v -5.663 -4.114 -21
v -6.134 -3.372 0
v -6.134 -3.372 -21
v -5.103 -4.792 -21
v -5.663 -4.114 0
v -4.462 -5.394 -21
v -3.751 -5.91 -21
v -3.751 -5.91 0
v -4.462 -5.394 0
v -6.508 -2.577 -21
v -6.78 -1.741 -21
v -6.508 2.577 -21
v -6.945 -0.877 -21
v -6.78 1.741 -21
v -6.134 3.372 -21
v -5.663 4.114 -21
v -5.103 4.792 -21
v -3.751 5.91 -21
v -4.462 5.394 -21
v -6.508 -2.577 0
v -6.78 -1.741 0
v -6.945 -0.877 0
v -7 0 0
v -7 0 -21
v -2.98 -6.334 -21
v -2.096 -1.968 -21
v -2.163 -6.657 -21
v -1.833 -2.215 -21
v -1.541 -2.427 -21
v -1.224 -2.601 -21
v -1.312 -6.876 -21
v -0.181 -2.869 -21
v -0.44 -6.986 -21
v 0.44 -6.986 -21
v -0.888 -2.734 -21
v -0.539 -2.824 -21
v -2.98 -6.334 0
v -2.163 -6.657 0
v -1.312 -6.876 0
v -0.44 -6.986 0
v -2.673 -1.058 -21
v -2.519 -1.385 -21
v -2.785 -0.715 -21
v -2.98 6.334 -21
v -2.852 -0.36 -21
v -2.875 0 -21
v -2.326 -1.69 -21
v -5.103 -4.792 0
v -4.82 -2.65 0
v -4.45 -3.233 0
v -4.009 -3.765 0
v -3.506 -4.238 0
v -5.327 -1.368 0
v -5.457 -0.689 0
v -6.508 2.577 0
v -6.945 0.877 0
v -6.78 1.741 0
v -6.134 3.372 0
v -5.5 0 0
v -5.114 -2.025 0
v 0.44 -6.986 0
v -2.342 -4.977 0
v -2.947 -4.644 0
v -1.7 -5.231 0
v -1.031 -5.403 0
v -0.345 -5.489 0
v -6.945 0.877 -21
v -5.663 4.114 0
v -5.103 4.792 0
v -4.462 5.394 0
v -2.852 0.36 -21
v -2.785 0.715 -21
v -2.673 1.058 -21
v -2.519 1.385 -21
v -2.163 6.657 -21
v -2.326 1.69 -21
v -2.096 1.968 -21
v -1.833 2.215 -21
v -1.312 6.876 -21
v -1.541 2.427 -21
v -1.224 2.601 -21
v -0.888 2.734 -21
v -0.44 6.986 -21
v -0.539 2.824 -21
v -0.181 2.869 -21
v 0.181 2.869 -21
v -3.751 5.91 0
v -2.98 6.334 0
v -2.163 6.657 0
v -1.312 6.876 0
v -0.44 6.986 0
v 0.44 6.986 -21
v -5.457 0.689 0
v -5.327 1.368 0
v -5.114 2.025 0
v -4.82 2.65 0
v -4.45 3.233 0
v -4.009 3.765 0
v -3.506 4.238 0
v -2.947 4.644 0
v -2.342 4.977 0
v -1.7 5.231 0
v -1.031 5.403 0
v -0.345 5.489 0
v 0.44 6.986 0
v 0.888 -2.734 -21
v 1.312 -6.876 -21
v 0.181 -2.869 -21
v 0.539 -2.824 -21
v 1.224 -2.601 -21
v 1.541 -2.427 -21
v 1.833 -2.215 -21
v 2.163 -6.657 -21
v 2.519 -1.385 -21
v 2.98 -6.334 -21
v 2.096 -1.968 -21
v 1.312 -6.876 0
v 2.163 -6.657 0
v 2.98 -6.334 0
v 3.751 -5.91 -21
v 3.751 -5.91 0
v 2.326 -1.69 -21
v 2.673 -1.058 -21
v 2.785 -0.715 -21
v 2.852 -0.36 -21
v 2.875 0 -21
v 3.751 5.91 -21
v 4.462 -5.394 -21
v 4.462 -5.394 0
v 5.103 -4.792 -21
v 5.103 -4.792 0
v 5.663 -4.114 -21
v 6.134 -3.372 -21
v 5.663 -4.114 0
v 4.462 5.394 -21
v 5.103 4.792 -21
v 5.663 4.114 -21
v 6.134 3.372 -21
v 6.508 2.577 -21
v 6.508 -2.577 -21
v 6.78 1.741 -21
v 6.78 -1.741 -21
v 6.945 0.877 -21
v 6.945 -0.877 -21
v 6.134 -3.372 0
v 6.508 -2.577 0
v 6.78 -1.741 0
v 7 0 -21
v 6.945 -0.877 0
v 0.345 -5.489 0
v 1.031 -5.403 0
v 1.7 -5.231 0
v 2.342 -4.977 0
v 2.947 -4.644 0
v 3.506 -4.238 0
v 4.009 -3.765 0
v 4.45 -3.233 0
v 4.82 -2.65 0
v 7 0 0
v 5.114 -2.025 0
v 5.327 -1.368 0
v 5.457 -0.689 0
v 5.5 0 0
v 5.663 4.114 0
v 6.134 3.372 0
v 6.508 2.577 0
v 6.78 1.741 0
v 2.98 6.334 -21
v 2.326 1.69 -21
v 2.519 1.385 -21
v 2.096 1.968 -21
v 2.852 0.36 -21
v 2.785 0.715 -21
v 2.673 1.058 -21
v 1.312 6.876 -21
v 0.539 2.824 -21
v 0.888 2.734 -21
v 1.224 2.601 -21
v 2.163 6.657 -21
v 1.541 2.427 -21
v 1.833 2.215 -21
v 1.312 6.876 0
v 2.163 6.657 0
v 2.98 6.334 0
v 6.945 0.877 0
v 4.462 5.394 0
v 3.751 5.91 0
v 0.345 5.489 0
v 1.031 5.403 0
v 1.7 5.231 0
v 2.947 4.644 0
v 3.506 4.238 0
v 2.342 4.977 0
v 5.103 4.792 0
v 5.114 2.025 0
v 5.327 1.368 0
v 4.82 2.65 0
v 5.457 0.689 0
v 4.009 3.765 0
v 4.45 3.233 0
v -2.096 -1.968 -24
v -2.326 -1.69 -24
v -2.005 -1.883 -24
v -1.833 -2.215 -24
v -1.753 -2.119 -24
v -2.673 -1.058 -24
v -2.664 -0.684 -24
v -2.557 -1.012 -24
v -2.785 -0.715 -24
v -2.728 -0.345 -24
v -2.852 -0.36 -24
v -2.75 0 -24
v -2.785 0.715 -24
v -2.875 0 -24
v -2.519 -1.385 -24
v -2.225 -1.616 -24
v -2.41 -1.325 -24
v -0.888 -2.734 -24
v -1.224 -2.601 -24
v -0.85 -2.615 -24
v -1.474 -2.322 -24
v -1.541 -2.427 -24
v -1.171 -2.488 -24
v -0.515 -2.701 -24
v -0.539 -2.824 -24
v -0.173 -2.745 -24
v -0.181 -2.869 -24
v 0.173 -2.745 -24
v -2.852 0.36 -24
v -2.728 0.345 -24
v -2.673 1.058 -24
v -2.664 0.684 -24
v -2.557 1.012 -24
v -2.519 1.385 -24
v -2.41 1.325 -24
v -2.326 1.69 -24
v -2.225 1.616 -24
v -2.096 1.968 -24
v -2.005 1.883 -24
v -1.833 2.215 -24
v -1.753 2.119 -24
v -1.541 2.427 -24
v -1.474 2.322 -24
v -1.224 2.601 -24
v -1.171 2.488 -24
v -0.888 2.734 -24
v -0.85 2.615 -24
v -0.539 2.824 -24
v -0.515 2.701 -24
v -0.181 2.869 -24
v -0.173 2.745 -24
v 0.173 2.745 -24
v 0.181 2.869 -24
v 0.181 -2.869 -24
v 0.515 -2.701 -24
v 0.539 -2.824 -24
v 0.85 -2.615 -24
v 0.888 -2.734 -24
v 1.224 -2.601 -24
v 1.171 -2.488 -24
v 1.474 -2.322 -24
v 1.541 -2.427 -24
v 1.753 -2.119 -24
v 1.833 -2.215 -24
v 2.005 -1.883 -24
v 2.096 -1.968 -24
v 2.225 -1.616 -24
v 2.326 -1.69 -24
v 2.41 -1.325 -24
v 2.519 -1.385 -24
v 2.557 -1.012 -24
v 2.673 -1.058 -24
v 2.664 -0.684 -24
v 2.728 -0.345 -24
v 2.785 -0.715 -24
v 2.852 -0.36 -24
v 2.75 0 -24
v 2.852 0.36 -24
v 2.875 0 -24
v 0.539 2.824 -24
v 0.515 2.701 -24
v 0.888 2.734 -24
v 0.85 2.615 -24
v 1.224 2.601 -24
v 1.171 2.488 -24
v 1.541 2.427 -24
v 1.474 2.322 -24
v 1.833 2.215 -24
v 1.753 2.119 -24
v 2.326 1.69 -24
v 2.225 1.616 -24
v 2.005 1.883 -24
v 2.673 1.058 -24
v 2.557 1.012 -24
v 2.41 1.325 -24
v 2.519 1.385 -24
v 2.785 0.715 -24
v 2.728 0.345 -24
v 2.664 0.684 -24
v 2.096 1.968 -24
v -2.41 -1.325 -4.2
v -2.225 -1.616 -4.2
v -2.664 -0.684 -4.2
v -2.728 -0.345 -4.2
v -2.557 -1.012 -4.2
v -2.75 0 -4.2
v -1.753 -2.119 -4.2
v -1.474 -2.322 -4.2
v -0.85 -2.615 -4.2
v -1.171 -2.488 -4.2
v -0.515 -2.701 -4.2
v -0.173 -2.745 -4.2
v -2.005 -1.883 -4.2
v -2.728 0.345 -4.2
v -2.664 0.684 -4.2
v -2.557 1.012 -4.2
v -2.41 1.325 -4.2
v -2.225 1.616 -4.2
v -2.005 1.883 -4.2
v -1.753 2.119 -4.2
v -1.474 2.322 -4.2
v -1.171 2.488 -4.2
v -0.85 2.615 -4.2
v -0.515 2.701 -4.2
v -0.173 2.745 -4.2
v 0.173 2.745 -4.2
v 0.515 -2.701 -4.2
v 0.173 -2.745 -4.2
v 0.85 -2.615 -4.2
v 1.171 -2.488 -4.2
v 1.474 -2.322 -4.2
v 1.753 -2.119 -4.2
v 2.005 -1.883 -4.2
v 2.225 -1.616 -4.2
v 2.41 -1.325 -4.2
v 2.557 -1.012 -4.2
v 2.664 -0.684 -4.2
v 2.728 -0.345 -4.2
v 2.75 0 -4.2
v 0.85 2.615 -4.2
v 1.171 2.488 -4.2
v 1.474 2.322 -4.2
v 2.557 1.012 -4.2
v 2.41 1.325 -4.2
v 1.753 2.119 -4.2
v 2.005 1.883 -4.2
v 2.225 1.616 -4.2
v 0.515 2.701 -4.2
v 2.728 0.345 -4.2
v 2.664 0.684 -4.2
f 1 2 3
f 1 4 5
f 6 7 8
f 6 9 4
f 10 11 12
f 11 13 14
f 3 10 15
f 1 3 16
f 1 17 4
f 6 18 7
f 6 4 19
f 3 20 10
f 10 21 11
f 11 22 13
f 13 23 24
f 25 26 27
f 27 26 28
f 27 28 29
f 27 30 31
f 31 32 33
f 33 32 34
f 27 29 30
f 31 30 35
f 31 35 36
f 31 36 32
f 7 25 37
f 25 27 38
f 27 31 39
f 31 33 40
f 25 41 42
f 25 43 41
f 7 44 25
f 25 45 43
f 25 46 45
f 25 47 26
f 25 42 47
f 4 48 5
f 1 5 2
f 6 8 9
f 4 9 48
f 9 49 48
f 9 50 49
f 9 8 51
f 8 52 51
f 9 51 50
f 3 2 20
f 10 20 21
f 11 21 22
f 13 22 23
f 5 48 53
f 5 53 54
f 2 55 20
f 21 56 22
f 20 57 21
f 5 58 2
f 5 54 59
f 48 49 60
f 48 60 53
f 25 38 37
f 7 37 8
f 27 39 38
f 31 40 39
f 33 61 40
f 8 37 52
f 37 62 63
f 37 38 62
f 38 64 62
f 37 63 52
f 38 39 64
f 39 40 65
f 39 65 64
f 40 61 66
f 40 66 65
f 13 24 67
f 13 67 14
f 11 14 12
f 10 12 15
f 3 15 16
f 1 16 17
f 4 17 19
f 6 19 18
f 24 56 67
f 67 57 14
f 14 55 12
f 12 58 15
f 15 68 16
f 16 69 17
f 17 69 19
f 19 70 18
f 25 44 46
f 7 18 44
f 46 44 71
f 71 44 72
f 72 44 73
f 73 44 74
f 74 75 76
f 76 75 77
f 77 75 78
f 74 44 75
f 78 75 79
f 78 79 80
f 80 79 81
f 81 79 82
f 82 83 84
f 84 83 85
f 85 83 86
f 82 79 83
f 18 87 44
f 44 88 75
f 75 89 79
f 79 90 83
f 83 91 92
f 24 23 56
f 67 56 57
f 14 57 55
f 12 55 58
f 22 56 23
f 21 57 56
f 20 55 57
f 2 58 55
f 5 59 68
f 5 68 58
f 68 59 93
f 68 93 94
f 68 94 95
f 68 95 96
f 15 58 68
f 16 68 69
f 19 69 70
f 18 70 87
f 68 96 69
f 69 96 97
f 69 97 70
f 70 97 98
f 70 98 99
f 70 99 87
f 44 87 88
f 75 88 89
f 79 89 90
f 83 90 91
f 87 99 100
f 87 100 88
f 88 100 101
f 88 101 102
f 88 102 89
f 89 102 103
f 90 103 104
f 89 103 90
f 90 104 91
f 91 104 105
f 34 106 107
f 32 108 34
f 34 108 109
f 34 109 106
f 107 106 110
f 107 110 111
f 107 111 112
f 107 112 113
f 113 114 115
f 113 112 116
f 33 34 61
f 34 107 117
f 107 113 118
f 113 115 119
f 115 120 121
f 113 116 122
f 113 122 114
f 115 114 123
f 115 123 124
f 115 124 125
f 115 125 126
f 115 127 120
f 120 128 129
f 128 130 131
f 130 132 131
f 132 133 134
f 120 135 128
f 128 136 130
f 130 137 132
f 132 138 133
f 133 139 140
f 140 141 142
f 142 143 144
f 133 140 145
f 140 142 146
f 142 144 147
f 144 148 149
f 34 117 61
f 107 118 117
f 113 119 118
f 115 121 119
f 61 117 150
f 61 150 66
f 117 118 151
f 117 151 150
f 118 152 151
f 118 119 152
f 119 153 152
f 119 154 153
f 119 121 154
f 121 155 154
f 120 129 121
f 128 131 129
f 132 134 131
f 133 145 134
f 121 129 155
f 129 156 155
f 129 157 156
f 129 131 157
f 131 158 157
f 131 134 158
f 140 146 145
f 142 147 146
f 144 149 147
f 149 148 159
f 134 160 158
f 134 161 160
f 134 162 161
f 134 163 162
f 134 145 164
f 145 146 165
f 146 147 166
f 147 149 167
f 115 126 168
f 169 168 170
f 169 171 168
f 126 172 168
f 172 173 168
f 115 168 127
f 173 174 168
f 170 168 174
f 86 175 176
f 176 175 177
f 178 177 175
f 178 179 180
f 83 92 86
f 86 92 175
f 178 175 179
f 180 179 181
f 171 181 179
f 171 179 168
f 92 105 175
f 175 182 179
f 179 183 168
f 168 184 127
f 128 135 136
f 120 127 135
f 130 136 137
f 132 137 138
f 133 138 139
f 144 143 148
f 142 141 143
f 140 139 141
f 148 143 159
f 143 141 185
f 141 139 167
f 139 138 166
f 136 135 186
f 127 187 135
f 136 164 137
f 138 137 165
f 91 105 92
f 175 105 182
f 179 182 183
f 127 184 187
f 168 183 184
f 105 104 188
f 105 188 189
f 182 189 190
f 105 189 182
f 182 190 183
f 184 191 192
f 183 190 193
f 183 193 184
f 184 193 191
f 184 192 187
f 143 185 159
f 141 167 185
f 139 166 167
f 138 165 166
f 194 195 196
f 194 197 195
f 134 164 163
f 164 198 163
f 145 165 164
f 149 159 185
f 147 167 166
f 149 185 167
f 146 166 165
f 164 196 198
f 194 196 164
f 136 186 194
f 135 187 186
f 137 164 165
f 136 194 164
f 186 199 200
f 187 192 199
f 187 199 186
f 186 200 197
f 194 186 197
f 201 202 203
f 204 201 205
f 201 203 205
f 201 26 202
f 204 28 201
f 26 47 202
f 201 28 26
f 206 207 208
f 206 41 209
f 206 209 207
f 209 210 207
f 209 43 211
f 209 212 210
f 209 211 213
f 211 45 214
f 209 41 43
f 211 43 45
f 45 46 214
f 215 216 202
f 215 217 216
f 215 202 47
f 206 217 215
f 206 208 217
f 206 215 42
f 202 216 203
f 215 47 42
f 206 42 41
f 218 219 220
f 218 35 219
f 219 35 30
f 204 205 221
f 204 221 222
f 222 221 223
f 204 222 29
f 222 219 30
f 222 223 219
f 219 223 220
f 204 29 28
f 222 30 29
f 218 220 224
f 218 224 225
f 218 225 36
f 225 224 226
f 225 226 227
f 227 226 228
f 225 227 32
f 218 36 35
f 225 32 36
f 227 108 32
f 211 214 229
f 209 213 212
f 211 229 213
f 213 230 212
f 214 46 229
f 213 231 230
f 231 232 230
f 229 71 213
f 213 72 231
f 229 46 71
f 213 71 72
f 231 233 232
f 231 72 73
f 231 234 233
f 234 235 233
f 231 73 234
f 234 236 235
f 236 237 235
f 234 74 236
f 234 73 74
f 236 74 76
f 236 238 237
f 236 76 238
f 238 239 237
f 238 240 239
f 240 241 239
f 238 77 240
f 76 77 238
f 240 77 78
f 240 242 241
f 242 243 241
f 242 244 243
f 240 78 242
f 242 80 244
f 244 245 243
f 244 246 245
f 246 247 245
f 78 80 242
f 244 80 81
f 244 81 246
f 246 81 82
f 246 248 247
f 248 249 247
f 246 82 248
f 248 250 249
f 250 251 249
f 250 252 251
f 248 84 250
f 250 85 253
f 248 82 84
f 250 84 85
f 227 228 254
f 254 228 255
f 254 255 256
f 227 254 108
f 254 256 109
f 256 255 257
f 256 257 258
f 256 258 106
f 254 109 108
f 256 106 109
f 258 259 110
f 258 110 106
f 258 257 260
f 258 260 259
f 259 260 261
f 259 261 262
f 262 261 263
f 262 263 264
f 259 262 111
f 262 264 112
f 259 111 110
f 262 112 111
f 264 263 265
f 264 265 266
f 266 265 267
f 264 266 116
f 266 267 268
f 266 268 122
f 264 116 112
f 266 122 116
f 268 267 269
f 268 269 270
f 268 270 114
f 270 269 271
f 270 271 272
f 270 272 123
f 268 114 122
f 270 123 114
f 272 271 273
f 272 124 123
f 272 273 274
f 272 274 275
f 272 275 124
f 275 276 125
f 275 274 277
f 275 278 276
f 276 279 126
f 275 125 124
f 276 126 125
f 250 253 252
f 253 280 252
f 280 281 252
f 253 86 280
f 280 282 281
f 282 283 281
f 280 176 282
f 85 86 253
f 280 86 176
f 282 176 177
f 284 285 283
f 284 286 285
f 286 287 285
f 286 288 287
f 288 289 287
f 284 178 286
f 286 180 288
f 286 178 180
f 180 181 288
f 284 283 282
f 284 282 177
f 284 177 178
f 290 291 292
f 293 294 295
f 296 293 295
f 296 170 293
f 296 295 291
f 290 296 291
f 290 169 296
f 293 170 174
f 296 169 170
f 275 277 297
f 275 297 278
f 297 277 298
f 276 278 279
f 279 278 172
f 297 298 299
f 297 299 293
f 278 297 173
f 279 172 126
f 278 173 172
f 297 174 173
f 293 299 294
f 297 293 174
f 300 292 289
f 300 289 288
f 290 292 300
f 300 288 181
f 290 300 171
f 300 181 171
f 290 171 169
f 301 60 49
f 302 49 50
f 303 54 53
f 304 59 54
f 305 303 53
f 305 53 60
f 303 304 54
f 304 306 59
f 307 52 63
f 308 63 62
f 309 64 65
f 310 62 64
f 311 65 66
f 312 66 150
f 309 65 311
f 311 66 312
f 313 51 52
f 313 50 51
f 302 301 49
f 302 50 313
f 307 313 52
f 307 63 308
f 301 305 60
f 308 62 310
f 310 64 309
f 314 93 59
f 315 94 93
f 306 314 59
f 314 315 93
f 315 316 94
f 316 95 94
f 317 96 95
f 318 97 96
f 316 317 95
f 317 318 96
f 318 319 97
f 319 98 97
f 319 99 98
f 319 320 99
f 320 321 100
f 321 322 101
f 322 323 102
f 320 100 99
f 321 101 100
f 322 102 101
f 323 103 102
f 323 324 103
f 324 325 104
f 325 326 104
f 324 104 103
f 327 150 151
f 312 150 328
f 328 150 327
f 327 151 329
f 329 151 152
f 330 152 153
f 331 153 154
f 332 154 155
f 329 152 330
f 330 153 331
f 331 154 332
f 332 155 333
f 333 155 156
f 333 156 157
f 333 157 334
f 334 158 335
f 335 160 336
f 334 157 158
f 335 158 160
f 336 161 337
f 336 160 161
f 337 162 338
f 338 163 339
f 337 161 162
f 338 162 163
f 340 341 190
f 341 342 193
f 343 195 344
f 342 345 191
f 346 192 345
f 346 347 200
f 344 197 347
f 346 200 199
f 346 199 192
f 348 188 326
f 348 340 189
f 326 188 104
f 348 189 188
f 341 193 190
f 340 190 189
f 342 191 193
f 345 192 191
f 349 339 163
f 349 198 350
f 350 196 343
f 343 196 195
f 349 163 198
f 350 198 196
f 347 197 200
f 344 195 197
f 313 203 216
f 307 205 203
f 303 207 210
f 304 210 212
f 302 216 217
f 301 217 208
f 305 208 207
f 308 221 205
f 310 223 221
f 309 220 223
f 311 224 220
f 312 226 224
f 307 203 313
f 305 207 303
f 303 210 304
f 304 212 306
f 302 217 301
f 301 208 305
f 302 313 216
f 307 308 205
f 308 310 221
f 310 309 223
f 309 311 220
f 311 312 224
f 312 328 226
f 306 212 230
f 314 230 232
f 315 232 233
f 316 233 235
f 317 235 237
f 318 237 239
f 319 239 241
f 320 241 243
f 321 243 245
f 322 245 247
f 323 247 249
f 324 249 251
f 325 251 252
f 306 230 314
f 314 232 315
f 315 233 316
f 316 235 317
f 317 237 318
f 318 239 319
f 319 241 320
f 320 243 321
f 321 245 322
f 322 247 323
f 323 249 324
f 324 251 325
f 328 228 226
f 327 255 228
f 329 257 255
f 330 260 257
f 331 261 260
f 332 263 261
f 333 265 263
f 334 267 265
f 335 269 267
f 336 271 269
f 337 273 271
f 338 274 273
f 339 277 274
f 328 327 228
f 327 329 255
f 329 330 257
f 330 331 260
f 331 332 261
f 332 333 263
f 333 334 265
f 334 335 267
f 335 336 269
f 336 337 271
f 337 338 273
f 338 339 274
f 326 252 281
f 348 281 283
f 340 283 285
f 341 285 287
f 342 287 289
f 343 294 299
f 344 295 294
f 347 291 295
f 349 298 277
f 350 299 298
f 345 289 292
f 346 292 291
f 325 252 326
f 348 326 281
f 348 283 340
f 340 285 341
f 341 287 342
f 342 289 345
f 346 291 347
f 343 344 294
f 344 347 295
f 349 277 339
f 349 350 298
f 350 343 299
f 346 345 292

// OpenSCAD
$fn = 50;


difference() {
	union() {
		translate(v = [0, 0, -21.0000000000]) {
			cylinder(h = 21, r = 7.0000000000);
		}
		#translate(v = [0, 0, -24.0000000000]) {
			cylinder(h = 24, r = 2.8750000000);
		}
	}
	union() {
		translate(v = [0, 0, 0]) {
			rotate(a = [0, 0, 0]) {
				difference() {
					union() {
						translate(v = [0, 0, -24.0000000000]) {
							cylinder(h = 24, r = 2.2500000000);
						}
						translate(v = [0, 0, -4.2000000000]) {
							cylinder(h = 4.2000000000, r1 = 2.7500000000, r2 = 5.5000000000);
						}
						translate(v = [0, 0, -24.0000000000]) {
							cylinder(h = 24, r = 2.7500000000);
						}
						translate(v = [0, 0, -24.0000000000]) {
							cylinder(h = 24, r = 2.2500000000);
						}
					}
					union();
				}
			}
		}
	}
}
